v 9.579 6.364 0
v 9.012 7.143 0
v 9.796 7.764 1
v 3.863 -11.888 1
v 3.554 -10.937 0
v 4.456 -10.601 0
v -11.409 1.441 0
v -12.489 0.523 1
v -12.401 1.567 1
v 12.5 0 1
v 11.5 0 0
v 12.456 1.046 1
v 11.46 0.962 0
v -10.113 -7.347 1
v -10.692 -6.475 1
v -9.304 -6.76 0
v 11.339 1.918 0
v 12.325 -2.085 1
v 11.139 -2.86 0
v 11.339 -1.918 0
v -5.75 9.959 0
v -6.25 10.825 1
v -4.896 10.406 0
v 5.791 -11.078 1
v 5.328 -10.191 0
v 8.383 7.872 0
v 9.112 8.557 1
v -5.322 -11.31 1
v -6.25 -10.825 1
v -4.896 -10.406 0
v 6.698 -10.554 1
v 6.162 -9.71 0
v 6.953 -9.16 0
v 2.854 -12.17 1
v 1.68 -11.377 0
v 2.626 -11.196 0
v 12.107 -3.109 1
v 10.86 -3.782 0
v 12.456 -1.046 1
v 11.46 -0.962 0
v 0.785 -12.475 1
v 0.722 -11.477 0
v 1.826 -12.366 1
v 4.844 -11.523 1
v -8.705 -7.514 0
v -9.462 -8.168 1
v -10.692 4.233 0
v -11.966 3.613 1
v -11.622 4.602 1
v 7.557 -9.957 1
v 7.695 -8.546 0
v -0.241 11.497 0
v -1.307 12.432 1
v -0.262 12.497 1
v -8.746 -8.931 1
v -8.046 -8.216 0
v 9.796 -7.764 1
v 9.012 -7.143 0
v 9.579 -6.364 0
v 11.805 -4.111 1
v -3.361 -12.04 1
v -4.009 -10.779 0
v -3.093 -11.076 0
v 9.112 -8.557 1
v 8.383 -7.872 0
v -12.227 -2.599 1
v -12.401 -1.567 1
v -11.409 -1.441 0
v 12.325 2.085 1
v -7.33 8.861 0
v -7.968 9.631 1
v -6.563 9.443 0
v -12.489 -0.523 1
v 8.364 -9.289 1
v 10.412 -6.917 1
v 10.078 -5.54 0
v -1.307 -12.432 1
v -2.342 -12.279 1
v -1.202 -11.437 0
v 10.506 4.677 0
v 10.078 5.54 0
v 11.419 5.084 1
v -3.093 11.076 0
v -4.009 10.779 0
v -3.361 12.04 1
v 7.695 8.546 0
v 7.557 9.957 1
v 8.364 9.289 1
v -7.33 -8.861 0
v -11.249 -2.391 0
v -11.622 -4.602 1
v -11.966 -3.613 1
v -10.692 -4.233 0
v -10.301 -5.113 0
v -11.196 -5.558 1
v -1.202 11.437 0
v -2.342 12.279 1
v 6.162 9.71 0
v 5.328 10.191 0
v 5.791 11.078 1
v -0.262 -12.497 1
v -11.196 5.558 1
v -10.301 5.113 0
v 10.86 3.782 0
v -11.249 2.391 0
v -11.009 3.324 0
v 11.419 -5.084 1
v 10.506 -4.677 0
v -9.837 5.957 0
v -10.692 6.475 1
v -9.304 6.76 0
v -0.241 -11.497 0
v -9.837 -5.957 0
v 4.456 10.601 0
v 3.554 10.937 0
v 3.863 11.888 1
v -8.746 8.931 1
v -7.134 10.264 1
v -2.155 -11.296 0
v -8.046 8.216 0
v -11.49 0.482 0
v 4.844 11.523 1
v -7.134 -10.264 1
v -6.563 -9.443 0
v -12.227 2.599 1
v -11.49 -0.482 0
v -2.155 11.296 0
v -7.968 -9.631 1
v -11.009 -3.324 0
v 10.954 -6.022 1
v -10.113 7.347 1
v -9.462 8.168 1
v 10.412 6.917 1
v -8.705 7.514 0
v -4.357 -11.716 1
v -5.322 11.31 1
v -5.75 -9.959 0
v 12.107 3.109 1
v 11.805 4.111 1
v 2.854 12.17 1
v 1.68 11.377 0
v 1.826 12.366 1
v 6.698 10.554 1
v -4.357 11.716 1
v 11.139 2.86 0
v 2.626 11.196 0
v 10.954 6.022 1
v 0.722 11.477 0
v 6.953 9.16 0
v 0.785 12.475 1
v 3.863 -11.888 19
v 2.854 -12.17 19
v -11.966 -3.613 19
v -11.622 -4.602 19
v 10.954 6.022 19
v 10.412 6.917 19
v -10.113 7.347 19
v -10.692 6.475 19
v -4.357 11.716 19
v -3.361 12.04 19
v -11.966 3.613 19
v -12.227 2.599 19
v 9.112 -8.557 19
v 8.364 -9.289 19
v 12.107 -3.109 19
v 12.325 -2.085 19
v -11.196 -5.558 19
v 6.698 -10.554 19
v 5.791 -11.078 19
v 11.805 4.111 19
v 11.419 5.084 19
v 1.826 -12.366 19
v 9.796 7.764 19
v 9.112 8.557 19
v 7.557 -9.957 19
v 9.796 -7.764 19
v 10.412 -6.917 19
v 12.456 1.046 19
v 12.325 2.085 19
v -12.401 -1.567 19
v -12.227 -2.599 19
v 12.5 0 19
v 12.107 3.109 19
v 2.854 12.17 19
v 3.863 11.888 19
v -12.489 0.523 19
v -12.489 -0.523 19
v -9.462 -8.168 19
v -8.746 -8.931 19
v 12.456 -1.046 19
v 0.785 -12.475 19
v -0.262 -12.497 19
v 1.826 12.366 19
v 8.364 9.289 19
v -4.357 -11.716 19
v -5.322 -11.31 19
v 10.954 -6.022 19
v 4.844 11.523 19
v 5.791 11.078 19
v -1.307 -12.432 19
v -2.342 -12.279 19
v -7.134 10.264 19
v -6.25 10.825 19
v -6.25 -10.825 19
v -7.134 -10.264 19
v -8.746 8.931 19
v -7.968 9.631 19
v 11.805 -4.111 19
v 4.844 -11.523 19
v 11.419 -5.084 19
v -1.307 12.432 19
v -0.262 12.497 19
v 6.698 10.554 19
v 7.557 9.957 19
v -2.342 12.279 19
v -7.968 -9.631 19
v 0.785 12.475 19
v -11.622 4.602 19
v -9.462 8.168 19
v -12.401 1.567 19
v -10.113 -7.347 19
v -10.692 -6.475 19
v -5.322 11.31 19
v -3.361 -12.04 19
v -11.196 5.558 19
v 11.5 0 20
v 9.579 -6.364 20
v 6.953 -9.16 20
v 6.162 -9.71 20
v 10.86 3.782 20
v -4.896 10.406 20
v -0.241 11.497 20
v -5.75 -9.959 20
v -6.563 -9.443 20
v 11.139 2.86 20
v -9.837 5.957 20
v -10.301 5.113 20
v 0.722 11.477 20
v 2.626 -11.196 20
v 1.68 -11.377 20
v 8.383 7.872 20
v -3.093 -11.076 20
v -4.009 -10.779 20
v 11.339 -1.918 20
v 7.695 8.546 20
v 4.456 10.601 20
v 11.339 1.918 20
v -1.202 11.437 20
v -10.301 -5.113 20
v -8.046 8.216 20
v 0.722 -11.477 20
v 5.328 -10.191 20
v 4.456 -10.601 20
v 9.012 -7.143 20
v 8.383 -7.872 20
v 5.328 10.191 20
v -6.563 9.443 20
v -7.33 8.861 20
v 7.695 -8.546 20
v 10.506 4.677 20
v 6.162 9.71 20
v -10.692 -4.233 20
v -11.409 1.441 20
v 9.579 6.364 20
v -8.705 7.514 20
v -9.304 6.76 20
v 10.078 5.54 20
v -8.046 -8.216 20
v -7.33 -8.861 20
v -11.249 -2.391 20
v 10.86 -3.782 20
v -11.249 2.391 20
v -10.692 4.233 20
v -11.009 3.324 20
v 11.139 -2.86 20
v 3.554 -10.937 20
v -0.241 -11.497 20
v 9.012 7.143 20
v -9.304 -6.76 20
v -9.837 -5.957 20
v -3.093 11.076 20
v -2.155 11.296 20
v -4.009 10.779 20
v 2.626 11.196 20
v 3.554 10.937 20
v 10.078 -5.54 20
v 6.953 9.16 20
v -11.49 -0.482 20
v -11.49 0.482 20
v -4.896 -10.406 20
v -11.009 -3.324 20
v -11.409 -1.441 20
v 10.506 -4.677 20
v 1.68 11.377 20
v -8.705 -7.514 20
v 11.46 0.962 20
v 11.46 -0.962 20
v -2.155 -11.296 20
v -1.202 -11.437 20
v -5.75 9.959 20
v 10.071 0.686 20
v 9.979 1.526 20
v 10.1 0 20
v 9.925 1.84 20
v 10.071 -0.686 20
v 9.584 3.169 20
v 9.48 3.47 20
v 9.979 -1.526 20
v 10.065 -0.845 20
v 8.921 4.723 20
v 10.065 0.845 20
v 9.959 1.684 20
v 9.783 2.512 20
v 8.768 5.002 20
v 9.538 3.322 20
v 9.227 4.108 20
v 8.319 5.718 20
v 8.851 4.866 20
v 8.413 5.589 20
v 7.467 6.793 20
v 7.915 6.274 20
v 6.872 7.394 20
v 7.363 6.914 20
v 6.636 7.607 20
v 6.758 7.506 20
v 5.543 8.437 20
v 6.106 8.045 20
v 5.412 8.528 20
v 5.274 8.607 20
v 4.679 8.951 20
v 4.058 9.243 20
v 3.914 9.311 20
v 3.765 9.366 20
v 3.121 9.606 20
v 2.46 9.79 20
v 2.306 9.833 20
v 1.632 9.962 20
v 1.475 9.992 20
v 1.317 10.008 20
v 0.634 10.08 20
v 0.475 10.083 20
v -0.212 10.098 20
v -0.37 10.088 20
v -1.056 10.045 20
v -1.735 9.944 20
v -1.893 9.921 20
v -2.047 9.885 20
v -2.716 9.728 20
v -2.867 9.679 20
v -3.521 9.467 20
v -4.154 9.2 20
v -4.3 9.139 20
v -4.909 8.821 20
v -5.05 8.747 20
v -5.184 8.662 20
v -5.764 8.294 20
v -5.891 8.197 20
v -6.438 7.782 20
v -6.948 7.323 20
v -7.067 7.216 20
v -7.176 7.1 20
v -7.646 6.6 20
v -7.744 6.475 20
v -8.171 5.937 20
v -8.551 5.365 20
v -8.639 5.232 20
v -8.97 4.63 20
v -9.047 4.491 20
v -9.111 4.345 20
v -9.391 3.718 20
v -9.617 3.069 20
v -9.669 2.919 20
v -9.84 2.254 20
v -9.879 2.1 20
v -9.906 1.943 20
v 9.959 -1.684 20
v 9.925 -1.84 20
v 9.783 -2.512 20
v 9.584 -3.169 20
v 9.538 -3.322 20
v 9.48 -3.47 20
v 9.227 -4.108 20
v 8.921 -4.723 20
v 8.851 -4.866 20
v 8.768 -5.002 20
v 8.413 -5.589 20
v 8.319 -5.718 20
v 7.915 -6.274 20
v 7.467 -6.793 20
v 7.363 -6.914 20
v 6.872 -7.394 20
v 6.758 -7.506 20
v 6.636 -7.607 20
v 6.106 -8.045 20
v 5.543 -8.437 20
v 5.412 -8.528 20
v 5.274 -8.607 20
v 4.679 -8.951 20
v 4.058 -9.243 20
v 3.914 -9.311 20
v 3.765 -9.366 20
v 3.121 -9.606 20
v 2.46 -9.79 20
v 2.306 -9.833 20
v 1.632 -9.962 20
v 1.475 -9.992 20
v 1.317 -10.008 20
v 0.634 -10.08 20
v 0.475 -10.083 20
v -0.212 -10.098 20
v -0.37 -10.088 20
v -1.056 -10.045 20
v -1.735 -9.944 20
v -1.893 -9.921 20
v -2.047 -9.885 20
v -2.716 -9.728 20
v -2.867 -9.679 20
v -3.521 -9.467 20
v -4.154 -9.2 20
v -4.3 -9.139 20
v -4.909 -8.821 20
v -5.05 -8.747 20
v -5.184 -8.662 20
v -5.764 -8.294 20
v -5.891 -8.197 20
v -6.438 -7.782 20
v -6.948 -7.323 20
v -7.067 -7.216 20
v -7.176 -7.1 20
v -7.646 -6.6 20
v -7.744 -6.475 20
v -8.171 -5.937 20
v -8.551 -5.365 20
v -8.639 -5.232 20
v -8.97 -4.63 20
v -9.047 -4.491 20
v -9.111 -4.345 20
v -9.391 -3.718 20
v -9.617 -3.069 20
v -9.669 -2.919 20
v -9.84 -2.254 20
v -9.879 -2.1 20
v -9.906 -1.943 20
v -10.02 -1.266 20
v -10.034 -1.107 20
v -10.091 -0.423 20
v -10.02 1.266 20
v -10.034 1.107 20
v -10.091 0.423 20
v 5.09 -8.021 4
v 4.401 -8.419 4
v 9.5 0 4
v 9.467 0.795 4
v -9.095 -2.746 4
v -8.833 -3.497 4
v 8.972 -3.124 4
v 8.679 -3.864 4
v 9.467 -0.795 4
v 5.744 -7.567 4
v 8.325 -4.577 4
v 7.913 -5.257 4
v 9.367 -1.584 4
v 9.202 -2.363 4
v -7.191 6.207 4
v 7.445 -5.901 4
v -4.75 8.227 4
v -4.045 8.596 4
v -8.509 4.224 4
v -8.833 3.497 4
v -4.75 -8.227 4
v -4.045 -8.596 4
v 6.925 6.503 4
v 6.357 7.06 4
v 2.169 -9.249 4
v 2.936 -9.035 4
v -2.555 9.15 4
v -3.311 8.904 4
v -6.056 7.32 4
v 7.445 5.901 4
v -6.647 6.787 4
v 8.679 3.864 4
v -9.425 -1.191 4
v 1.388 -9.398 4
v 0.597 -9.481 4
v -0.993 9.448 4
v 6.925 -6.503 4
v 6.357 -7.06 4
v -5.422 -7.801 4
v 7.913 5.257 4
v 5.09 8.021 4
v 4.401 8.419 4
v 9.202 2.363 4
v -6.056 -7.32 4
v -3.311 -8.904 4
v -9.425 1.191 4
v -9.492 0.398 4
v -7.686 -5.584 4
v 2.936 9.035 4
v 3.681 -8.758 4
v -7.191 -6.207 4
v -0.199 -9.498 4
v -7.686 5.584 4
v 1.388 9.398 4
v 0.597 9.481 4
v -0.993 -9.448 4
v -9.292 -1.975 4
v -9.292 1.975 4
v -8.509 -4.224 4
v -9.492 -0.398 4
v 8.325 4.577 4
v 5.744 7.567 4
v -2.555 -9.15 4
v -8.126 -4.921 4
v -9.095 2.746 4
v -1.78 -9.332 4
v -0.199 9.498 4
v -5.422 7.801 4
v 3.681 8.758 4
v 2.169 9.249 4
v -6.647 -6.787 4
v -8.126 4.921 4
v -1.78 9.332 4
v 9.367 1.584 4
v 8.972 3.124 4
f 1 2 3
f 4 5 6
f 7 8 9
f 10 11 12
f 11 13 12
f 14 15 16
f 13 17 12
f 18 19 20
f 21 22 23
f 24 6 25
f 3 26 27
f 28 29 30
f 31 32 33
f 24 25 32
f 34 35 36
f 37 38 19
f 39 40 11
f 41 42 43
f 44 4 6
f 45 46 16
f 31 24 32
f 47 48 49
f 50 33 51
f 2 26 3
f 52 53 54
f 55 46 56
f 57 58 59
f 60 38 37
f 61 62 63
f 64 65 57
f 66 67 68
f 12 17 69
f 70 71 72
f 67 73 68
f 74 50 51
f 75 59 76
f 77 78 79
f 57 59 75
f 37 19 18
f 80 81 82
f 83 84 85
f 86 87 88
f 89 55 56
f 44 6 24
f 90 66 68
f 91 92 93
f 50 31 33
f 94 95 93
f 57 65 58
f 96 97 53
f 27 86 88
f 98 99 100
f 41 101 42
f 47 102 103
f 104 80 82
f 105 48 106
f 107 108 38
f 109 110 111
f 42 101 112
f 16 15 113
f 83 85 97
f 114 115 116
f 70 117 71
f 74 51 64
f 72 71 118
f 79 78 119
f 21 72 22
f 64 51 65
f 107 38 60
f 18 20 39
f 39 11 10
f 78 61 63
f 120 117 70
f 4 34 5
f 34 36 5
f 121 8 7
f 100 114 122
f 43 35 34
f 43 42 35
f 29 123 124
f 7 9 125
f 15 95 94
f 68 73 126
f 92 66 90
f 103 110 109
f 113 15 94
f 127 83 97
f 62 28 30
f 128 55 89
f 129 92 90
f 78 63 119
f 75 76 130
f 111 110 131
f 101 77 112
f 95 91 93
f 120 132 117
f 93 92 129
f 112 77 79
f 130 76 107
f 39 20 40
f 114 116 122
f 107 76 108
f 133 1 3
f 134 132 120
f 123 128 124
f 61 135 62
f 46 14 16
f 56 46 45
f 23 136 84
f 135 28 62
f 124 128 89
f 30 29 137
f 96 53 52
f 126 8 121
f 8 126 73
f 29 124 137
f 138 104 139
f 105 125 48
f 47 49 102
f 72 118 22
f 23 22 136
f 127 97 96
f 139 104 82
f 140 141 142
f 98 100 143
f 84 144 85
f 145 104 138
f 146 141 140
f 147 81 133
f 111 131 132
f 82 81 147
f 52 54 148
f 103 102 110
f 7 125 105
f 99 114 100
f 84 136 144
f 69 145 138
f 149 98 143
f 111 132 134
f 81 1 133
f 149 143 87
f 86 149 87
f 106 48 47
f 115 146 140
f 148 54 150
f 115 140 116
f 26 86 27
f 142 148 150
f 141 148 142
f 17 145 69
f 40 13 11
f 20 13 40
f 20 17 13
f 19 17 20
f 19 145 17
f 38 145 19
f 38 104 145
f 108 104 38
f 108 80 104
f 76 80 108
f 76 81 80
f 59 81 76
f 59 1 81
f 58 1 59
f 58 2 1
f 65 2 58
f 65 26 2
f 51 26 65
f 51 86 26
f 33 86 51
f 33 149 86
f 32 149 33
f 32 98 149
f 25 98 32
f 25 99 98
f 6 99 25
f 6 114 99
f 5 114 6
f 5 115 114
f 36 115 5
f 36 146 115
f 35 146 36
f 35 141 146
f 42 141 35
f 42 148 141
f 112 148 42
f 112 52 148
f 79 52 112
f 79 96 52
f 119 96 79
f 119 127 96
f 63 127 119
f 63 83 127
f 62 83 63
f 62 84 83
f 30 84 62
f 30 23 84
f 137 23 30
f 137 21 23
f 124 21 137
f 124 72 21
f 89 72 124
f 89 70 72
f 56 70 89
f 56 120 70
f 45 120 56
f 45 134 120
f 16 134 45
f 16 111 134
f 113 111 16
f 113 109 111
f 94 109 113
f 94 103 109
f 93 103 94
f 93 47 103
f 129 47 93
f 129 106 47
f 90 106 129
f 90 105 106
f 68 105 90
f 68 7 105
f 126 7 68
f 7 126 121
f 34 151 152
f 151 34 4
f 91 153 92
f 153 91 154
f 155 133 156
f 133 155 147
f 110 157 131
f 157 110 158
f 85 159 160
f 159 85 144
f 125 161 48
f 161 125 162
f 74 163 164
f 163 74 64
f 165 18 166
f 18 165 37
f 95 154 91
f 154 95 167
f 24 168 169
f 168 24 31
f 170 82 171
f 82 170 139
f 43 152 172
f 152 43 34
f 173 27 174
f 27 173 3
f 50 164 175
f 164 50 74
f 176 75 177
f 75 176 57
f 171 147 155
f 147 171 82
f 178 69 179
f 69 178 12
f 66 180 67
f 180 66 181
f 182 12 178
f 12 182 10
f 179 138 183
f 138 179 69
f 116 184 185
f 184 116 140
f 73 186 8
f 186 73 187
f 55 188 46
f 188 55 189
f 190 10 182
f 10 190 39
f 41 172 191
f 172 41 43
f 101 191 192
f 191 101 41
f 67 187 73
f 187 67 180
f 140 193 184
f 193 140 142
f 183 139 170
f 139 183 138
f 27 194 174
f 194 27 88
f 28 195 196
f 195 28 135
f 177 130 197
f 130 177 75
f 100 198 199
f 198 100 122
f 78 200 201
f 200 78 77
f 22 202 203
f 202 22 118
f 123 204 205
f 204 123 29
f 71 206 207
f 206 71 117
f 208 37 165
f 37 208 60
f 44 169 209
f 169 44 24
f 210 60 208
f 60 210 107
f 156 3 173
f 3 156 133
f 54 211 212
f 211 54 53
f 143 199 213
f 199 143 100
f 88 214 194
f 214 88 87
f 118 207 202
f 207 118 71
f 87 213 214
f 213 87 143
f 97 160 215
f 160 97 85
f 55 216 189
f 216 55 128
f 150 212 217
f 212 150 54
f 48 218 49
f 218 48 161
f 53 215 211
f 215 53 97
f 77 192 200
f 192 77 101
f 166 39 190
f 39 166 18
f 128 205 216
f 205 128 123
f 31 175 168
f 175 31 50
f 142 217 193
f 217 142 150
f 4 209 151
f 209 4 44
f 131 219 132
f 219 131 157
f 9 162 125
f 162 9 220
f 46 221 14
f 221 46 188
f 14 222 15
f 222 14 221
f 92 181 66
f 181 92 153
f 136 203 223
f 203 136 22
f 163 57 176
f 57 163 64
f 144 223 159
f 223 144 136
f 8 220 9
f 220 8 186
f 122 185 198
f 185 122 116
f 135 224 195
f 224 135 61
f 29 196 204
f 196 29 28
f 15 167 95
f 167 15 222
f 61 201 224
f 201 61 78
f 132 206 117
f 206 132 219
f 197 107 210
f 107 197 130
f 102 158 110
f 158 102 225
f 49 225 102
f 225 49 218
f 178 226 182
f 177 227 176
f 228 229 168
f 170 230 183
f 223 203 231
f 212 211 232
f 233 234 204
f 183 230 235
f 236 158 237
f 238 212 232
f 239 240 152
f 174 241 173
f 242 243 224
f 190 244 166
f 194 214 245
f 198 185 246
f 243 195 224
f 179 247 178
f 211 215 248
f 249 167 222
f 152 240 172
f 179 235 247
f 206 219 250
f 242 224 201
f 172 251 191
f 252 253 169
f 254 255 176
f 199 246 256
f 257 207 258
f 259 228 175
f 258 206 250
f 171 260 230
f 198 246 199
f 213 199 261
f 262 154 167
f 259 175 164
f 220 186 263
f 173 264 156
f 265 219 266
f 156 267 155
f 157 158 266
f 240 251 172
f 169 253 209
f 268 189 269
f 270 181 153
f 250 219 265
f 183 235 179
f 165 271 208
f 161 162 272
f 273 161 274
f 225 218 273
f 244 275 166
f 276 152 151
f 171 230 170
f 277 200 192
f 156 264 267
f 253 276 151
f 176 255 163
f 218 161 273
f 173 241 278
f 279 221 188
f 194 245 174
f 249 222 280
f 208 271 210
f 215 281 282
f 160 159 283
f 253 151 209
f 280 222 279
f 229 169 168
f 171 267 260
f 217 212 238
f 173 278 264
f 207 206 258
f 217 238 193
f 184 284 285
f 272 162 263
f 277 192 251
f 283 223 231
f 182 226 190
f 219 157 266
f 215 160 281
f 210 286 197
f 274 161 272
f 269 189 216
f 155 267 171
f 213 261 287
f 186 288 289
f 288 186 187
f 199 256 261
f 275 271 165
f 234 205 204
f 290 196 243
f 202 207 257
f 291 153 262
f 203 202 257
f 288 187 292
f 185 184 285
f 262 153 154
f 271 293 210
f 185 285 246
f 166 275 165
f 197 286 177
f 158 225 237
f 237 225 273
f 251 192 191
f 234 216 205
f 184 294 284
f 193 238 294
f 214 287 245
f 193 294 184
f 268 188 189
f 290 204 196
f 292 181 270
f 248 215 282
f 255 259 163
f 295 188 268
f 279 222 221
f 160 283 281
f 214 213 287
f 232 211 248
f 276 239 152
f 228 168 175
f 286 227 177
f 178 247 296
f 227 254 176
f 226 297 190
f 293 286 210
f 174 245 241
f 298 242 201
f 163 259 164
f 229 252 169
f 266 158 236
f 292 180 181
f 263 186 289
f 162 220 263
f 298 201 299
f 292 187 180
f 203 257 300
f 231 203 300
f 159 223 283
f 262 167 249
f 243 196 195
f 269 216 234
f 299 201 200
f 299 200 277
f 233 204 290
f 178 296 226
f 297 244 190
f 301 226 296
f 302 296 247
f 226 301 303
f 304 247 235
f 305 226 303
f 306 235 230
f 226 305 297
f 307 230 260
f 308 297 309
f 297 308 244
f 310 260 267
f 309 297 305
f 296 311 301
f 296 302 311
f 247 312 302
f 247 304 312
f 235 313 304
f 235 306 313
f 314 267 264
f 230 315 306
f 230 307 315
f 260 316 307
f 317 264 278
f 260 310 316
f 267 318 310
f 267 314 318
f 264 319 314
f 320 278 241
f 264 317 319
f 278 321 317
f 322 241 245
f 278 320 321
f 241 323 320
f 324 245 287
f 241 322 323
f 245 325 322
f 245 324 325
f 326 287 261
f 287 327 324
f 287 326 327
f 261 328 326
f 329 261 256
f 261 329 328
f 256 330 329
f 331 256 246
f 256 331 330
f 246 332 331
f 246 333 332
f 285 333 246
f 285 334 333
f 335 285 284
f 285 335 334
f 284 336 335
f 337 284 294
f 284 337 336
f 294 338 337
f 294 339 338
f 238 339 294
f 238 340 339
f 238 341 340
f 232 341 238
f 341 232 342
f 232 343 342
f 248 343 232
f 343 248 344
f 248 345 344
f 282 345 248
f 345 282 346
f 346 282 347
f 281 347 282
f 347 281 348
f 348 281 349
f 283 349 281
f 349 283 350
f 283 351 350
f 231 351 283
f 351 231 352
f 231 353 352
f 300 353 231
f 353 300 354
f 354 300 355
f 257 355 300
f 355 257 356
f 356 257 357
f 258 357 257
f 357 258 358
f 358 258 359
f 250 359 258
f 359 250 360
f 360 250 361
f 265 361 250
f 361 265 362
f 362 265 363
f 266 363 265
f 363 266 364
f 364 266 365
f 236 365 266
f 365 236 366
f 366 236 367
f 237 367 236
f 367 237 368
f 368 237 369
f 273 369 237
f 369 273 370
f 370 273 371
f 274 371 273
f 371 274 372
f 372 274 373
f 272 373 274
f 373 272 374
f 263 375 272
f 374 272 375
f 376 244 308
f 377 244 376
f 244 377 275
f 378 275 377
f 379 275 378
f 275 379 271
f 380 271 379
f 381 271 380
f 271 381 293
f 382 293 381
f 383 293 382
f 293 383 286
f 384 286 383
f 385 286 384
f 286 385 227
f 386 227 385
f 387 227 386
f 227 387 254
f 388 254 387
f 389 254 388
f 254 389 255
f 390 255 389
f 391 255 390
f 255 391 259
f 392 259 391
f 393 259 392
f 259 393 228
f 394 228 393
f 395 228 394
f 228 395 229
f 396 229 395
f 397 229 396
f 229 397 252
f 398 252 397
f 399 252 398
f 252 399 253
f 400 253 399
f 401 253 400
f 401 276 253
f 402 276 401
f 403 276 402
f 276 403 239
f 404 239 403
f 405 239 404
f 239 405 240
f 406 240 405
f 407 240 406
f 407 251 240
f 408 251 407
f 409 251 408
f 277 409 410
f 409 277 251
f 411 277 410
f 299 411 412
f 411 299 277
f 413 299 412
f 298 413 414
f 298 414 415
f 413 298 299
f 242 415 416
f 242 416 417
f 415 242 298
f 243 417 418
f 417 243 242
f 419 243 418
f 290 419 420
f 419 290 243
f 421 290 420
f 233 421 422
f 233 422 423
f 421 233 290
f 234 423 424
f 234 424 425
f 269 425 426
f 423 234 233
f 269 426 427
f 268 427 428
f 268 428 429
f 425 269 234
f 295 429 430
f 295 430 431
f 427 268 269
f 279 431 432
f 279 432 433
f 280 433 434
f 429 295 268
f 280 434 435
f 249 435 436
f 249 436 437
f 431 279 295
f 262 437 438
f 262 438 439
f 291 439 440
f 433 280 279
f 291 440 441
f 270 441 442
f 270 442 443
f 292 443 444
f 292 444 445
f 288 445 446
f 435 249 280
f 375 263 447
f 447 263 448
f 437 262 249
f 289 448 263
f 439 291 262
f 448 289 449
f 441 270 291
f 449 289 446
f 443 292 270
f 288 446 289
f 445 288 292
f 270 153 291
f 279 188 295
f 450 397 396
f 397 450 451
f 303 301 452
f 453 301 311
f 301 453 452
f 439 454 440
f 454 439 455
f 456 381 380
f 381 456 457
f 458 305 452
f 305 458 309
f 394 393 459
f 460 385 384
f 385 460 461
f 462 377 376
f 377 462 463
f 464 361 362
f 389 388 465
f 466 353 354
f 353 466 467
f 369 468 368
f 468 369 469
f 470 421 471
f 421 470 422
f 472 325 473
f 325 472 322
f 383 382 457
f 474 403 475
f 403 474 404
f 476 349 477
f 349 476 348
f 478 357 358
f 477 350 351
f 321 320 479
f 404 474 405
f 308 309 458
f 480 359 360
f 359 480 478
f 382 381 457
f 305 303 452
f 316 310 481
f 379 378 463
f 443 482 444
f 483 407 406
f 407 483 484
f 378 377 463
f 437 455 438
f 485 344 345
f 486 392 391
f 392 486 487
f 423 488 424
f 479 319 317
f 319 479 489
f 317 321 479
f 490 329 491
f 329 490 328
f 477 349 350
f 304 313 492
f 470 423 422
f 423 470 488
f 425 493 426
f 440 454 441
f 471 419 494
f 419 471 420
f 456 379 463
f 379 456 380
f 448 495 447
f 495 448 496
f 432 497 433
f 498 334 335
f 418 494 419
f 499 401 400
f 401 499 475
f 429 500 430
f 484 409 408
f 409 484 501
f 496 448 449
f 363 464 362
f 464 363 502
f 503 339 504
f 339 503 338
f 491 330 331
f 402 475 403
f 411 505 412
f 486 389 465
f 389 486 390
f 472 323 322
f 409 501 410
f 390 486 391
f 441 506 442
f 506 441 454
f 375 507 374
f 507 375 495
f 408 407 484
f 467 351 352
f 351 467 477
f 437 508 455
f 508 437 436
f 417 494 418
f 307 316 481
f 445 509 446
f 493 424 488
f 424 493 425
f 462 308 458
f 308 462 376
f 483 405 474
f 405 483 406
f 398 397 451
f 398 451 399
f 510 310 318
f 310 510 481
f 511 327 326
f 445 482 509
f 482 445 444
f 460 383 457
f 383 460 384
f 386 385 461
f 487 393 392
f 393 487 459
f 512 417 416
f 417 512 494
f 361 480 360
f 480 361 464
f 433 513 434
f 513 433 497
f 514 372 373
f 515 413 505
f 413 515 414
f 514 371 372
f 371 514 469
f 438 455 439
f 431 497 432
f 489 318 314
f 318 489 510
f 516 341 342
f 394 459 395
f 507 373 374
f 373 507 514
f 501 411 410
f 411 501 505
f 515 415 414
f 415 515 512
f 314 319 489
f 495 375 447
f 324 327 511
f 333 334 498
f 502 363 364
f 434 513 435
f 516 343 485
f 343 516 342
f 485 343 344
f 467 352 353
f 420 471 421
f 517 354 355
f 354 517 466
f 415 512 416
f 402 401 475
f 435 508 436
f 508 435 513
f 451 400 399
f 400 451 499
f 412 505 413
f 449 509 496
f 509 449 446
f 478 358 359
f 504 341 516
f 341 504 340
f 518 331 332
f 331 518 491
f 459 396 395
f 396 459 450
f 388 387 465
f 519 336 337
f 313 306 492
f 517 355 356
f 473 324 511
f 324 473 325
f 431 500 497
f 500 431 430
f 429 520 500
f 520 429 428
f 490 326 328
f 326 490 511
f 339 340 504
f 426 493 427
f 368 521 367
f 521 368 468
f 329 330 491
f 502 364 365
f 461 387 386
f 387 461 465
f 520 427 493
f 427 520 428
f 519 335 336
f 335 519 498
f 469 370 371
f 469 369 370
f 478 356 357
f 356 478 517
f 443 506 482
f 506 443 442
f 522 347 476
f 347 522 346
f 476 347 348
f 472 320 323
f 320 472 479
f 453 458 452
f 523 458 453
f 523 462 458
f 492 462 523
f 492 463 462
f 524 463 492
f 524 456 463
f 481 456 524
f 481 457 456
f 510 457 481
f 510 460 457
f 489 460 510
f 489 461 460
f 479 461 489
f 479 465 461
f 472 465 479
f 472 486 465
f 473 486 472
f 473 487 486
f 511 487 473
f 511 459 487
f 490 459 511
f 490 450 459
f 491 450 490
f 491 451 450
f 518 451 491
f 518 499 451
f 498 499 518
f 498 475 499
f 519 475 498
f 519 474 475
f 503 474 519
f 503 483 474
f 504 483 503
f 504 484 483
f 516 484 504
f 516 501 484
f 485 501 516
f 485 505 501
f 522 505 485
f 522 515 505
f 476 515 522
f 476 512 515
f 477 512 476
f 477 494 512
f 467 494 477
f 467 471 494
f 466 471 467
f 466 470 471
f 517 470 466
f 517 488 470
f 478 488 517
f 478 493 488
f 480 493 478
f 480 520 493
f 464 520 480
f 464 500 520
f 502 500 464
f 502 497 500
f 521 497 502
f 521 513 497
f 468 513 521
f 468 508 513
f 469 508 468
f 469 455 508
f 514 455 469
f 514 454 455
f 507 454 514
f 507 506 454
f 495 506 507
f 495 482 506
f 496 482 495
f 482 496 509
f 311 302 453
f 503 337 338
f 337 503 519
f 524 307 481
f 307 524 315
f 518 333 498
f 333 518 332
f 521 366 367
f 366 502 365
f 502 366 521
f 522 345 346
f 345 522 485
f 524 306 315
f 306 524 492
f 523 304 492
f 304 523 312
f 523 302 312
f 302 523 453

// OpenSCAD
/*
 * Foot for stepladder
 *
 * As printed it is slightly loose for the stepladder leg, but it perfectly
 * fits a penny at the bottom to distribute the weight. Insert penny, add
 * hot glue, and stick on the ladder leg.
 */

$fn=75;

leg_outer_d=19.5;
leg_inner_d=15;
foot_d=25;
foot_h=20;
foot_t=4;

union() {
    difference() {
        union() {
            cylinder(d1=foot_d-2, d2=foot_d, h=1);
            translate([0, 0, 1]) cylinder(d=foot_d, h=foot_h-2);
            translate([0, 0, foot_h-1]) cylinder(d1=foot_d, d2=foot_d-2, h=1);
        }
        translate([0, 0, foot_t])
            cylinder(d1=leg_outer_d-0.5, d2=leg_outer_d+1, h=foot_h);
    }
}
